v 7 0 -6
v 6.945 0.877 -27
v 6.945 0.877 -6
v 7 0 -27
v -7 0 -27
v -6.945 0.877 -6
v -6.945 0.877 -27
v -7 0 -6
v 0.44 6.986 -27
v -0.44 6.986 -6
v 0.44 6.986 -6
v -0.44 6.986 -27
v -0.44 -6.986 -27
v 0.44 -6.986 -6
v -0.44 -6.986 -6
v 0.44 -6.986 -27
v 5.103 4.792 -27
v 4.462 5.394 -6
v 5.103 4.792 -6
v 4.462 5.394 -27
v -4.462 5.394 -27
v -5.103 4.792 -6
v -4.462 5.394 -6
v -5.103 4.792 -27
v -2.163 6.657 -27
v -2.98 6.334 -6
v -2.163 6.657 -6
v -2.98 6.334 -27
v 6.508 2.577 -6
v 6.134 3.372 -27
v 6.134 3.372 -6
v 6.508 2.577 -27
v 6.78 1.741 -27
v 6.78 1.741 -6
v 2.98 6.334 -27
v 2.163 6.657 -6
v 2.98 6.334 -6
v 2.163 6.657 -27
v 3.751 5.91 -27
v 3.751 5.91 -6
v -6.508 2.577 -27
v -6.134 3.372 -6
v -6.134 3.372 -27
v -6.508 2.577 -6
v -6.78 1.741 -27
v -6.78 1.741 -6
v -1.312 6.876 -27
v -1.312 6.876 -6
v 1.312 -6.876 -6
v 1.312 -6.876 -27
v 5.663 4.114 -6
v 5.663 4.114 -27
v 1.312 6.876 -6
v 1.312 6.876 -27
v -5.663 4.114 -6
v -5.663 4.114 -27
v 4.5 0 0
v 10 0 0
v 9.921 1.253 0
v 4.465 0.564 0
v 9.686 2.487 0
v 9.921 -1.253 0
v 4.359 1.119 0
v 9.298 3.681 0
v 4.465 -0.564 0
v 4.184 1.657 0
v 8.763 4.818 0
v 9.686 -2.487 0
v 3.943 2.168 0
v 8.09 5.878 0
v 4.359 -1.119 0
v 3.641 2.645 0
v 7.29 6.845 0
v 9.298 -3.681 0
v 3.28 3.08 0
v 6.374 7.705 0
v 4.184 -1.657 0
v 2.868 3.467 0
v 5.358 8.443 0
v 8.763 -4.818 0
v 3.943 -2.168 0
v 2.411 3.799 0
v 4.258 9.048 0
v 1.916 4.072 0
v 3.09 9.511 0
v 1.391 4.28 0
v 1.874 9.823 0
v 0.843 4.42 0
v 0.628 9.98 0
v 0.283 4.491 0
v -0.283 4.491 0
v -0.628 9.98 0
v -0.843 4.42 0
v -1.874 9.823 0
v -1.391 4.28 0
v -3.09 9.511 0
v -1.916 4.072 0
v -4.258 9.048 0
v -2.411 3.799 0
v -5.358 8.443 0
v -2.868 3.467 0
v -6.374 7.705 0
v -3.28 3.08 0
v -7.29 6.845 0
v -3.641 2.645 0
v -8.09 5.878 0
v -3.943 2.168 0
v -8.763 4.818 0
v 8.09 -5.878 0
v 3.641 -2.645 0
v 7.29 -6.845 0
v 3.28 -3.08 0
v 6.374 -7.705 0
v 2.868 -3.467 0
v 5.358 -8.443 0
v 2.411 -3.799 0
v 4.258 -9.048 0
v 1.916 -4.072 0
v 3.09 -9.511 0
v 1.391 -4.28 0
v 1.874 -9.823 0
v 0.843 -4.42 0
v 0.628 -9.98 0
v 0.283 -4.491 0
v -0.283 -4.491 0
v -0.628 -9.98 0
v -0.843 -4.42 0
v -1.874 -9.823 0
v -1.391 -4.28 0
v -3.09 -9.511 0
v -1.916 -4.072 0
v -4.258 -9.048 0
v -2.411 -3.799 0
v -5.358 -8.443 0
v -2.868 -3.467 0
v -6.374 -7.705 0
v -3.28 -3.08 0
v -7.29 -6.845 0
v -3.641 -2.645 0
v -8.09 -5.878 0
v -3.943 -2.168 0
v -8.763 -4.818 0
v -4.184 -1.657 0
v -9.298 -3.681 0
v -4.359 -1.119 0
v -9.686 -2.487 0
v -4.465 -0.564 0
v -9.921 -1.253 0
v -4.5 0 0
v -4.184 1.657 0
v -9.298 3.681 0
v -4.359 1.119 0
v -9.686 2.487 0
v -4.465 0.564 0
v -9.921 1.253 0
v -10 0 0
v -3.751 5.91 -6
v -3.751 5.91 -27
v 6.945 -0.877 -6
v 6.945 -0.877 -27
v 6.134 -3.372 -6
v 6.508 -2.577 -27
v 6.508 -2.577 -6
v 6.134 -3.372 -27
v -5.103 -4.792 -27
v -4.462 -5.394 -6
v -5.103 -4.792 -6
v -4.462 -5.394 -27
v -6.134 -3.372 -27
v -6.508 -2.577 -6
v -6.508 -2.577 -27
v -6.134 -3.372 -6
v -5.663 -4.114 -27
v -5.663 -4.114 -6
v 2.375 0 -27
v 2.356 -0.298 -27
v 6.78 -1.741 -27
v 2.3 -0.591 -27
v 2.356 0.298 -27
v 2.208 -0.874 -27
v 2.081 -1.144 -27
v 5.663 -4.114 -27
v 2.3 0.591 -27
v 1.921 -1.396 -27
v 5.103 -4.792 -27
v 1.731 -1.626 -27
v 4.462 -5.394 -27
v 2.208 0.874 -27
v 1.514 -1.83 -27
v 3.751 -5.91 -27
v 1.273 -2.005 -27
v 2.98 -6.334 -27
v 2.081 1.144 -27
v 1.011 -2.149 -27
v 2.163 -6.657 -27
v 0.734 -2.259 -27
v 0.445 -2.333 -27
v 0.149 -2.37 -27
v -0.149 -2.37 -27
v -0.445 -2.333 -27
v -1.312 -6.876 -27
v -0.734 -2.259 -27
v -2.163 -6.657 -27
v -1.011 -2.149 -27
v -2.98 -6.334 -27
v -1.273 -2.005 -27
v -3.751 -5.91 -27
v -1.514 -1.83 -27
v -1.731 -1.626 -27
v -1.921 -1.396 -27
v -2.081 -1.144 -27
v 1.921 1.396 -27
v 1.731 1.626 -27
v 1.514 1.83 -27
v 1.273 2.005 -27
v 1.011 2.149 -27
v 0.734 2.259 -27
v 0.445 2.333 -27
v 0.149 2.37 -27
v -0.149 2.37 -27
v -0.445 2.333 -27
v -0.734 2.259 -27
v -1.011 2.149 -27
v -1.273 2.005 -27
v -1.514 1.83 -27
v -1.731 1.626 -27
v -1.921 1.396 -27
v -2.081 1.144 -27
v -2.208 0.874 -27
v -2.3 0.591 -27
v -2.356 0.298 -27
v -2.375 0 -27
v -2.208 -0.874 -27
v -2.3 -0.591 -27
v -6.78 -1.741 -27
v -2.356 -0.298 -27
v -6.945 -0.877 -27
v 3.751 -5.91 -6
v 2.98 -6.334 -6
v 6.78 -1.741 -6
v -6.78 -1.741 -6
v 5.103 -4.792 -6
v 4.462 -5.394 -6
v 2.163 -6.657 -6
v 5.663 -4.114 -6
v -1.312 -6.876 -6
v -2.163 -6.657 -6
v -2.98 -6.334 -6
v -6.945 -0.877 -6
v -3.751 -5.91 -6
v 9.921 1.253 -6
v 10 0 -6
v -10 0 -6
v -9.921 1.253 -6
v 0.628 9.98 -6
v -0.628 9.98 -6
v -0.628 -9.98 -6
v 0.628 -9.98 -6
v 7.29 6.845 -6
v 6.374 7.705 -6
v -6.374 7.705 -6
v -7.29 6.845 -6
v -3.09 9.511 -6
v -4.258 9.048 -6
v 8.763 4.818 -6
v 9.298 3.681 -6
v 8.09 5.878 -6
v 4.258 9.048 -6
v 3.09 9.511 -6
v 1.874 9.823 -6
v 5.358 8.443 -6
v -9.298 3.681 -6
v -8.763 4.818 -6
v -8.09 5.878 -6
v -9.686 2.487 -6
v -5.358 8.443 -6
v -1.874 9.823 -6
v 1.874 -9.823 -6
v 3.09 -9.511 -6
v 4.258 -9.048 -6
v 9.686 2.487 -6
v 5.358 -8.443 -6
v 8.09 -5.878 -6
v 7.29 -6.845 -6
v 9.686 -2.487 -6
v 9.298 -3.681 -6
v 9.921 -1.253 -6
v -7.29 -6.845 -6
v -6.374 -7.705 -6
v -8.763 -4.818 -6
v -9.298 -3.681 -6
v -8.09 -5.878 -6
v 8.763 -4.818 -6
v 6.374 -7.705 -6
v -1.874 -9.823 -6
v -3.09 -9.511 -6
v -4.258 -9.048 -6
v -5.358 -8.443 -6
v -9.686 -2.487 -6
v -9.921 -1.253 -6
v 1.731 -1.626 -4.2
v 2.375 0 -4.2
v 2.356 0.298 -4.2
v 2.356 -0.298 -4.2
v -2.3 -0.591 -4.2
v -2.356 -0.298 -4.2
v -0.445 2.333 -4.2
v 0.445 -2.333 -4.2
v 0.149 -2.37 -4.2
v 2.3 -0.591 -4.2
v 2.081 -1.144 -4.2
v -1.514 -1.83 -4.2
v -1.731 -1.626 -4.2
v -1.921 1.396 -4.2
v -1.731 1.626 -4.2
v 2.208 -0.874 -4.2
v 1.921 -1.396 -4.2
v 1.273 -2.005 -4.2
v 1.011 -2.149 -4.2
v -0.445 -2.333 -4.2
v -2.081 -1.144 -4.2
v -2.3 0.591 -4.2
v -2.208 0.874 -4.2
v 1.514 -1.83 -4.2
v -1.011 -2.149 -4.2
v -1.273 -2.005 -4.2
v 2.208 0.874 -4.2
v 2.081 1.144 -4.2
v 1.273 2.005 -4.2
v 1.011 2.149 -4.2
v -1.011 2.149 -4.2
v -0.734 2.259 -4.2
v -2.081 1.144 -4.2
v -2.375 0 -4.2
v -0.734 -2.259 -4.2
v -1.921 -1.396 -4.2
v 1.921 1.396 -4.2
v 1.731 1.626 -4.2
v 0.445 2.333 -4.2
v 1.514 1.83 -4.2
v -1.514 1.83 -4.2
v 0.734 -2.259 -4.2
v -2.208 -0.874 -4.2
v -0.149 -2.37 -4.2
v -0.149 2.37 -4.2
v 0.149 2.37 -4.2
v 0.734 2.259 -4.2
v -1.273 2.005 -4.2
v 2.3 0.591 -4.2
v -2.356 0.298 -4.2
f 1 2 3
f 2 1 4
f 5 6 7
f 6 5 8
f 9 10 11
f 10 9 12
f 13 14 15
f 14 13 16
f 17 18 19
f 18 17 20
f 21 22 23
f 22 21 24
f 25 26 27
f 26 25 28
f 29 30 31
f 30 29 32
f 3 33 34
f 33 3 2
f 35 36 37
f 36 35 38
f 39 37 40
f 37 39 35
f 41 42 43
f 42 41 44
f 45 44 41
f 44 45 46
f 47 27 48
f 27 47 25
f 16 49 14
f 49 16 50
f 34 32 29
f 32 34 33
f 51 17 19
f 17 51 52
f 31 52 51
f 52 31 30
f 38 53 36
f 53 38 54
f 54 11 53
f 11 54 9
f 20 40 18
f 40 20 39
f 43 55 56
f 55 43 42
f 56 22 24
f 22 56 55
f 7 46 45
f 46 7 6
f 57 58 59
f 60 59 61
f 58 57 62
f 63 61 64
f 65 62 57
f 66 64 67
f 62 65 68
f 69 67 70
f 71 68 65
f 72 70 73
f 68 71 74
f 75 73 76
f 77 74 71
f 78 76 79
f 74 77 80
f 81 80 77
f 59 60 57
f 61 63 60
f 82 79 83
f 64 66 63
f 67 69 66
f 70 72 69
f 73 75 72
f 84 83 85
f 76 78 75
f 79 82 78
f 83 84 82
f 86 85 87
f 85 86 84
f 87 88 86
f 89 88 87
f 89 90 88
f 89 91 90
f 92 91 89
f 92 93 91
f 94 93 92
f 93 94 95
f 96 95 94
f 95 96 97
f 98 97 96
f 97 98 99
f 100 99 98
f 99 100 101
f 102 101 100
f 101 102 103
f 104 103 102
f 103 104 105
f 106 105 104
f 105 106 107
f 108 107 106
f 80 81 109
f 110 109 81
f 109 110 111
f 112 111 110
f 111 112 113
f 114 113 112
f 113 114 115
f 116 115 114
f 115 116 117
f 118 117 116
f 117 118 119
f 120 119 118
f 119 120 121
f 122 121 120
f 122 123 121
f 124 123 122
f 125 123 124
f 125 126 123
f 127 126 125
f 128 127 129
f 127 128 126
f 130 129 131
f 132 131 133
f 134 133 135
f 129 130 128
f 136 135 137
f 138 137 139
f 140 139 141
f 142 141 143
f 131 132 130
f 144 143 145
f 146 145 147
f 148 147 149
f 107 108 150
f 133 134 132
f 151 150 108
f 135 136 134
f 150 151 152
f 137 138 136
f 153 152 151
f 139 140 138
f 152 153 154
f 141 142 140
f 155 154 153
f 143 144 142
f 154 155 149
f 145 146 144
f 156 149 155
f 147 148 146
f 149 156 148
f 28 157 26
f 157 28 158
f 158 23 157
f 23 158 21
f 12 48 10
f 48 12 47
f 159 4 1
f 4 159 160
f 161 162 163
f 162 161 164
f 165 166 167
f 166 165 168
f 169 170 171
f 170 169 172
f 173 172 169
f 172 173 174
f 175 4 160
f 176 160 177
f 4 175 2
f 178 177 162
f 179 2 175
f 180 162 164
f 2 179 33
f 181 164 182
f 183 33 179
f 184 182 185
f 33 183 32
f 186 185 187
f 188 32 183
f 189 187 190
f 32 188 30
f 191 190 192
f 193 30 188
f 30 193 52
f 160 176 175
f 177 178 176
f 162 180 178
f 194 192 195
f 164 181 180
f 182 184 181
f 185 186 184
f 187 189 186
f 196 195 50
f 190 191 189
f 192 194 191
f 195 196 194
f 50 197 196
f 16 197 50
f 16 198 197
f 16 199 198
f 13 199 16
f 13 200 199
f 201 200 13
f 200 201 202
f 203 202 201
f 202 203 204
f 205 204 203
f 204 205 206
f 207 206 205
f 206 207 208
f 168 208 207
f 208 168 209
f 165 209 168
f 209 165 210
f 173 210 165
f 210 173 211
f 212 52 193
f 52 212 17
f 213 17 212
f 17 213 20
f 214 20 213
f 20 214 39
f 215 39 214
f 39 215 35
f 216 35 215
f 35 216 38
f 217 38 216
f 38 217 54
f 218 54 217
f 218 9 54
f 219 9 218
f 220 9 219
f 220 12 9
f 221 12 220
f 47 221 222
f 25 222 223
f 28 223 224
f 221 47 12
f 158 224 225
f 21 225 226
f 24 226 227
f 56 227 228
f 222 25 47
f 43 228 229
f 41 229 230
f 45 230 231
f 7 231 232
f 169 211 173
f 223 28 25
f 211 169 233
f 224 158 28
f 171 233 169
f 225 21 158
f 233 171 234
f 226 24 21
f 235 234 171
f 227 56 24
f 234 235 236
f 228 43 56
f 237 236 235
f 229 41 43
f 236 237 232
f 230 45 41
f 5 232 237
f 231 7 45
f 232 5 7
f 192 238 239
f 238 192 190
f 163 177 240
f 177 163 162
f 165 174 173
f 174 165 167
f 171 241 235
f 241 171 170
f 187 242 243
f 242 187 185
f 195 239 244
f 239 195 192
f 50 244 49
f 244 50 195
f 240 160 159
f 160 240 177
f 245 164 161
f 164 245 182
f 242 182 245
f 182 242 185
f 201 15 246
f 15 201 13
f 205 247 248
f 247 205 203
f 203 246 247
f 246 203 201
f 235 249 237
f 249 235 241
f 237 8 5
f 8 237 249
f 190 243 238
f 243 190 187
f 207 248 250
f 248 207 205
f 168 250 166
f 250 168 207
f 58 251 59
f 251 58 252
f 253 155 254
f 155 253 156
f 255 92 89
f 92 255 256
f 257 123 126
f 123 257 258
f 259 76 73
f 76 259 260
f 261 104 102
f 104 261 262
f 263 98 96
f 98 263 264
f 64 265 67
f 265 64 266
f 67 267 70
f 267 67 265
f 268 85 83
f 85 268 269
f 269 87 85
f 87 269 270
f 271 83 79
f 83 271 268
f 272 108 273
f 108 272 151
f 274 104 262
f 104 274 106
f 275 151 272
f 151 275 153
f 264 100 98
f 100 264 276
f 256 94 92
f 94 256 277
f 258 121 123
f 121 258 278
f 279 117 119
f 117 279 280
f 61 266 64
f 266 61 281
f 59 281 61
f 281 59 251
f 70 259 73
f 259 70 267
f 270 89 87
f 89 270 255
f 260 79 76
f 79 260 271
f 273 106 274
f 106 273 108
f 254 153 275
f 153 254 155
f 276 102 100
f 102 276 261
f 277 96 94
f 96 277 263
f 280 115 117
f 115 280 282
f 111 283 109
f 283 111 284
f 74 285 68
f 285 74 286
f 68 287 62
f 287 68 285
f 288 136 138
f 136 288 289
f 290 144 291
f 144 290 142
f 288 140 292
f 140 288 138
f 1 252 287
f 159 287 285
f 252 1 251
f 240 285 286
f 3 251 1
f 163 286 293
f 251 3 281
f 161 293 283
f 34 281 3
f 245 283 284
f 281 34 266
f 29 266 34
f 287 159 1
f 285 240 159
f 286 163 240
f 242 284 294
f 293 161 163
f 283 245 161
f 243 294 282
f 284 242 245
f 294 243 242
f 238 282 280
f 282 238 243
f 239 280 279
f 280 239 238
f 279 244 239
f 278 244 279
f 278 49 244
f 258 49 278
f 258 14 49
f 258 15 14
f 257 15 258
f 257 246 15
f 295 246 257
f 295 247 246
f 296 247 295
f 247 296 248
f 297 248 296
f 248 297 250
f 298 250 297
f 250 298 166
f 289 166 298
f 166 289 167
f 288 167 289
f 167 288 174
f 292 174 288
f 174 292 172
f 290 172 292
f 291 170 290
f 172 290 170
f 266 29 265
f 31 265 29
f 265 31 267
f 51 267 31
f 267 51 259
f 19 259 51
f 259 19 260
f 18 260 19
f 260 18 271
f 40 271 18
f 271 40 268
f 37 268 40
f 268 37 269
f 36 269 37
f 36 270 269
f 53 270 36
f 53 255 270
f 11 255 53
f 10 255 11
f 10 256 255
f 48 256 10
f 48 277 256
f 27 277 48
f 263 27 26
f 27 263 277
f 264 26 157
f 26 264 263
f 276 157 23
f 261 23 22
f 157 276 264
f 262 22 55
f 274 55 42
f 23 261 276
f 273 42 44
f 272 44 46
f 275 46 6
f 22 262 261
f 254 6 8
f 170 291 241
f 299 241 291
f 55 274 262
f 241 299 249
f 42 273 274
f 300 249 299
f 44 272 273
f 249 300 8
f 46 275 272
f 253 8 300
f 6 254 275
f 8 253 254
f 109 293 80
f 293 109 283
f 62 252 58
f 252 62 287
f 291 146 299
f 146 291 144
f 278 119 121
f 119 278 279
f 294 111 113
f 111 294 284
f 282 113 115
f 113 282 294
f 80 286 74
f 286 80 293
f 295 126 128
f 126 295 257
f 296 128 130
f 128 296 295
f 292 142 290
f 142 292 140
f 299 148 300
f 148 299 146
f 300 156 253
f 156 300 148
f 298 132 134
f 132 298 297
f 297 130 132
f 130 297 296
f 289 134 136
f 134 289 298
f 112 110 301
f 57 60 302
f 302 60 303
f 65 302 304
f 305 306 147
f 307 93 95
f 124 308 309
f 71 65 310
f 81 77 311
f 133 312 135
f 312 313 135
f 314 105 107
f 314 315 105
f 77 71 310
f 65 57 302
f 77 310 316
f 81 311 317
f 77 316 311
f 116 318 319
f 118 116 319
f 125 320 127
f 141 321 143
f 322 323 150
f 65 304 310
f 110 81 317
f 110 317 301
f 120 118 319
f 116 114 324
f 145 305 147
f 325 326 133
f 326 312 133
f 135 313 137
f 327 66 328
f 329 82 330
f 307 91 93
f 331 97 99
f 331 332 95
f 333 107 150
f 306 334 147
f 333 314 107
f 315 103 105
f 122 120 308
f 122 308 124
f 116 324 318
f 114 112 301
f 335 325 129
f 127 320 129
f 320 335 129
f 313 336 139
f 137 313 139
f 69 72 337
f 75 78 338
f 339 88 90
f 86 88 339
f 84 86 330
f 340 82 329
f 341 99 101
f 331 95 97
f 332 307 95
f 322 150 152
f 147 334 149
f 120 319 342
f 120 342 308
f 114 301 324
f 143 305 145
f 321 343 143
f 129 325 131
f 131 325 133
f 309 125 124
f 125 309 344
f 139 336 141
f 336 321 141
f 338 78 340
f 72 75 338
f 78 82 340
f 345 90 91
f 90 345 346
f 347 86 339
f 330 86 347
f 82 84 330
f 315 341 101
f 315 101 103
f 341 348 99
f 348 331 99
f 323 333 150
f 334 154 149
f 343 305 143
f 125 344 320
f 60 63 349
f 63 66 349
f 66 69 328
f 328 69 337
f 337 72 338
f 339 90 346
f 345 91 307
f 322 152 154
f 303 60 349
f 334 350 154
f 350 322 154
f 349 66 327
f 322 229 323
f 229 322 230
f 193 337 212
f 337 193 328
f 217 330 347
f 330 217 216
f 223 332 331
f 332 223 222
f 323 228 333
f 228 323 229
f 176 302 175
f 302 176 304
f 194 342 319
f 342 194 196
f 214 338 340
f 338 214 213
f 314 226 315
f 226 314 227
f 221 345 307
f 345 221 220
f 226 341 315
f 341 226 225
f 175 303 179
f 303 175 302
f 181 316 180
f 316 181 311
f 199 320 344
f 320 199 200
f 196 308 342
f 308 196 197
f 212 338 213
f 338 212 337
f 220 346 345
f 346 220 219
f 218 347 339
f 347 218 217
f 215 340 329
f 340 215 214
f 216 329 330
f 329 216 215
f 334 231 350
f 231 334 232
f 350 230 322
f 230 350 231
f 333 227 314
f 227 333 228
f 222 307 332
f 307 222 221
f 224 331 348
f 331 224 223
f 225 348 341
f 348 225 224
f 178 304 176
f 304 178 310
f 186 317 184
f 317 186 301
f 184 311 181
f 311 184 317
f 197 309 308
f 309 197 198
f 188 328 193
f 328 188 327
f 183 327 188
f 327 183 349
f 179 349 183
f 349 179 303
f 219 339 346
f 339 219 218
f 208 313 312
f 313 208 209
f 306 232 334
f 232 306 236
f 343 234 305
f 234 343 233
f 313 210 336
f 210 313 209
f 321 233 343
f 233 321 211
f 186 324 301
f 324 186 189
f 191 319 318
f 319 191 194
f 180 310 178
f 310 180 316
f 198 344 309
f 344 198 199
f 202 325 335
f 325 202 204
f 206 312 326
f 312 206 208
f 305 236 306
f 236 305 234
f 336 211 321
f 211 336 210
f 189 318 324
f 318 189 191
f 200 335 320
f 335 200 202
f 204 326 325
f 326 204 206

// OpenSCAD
$fn = 50;


difference() {
	union() {
		translate(v = [0, 0, -27.0000000000]) {
			cylinder(h = 27, r = 7.0000000000);
		}
		translate(v = [0, 0, -6.0000000000]) {
			cylinder(h = 6, r = 10.0000000000);
		}
	}
	union() {
		translate(v = [0, 0, 0]) {
			rotate(a = [0, 0, 0]) {
				difference() {
					union() {
						#translate(v = [0, 0, -27.0000000000]) {
							cylinder(h = 27, r = 2.2500000000);
						}
						#translate(v = [0, 0, -4.2000000000]) {
							cylinder(h = 4.2000000000, r = 7.0000000000, r1 = 2.3750000000, r2 = 4.5000000000);
						}
						#translate(v = [0, 0, -27.0000000000]) {
							cylinder(h = 27, r = 2.3750000000);
						}
						#translate(v = [0, 0, -27.0000000000]) {
							cylinder(h = 27, r = 2.2500000000);
						}
					}
					union();
				}
			}
		}
	}
}
